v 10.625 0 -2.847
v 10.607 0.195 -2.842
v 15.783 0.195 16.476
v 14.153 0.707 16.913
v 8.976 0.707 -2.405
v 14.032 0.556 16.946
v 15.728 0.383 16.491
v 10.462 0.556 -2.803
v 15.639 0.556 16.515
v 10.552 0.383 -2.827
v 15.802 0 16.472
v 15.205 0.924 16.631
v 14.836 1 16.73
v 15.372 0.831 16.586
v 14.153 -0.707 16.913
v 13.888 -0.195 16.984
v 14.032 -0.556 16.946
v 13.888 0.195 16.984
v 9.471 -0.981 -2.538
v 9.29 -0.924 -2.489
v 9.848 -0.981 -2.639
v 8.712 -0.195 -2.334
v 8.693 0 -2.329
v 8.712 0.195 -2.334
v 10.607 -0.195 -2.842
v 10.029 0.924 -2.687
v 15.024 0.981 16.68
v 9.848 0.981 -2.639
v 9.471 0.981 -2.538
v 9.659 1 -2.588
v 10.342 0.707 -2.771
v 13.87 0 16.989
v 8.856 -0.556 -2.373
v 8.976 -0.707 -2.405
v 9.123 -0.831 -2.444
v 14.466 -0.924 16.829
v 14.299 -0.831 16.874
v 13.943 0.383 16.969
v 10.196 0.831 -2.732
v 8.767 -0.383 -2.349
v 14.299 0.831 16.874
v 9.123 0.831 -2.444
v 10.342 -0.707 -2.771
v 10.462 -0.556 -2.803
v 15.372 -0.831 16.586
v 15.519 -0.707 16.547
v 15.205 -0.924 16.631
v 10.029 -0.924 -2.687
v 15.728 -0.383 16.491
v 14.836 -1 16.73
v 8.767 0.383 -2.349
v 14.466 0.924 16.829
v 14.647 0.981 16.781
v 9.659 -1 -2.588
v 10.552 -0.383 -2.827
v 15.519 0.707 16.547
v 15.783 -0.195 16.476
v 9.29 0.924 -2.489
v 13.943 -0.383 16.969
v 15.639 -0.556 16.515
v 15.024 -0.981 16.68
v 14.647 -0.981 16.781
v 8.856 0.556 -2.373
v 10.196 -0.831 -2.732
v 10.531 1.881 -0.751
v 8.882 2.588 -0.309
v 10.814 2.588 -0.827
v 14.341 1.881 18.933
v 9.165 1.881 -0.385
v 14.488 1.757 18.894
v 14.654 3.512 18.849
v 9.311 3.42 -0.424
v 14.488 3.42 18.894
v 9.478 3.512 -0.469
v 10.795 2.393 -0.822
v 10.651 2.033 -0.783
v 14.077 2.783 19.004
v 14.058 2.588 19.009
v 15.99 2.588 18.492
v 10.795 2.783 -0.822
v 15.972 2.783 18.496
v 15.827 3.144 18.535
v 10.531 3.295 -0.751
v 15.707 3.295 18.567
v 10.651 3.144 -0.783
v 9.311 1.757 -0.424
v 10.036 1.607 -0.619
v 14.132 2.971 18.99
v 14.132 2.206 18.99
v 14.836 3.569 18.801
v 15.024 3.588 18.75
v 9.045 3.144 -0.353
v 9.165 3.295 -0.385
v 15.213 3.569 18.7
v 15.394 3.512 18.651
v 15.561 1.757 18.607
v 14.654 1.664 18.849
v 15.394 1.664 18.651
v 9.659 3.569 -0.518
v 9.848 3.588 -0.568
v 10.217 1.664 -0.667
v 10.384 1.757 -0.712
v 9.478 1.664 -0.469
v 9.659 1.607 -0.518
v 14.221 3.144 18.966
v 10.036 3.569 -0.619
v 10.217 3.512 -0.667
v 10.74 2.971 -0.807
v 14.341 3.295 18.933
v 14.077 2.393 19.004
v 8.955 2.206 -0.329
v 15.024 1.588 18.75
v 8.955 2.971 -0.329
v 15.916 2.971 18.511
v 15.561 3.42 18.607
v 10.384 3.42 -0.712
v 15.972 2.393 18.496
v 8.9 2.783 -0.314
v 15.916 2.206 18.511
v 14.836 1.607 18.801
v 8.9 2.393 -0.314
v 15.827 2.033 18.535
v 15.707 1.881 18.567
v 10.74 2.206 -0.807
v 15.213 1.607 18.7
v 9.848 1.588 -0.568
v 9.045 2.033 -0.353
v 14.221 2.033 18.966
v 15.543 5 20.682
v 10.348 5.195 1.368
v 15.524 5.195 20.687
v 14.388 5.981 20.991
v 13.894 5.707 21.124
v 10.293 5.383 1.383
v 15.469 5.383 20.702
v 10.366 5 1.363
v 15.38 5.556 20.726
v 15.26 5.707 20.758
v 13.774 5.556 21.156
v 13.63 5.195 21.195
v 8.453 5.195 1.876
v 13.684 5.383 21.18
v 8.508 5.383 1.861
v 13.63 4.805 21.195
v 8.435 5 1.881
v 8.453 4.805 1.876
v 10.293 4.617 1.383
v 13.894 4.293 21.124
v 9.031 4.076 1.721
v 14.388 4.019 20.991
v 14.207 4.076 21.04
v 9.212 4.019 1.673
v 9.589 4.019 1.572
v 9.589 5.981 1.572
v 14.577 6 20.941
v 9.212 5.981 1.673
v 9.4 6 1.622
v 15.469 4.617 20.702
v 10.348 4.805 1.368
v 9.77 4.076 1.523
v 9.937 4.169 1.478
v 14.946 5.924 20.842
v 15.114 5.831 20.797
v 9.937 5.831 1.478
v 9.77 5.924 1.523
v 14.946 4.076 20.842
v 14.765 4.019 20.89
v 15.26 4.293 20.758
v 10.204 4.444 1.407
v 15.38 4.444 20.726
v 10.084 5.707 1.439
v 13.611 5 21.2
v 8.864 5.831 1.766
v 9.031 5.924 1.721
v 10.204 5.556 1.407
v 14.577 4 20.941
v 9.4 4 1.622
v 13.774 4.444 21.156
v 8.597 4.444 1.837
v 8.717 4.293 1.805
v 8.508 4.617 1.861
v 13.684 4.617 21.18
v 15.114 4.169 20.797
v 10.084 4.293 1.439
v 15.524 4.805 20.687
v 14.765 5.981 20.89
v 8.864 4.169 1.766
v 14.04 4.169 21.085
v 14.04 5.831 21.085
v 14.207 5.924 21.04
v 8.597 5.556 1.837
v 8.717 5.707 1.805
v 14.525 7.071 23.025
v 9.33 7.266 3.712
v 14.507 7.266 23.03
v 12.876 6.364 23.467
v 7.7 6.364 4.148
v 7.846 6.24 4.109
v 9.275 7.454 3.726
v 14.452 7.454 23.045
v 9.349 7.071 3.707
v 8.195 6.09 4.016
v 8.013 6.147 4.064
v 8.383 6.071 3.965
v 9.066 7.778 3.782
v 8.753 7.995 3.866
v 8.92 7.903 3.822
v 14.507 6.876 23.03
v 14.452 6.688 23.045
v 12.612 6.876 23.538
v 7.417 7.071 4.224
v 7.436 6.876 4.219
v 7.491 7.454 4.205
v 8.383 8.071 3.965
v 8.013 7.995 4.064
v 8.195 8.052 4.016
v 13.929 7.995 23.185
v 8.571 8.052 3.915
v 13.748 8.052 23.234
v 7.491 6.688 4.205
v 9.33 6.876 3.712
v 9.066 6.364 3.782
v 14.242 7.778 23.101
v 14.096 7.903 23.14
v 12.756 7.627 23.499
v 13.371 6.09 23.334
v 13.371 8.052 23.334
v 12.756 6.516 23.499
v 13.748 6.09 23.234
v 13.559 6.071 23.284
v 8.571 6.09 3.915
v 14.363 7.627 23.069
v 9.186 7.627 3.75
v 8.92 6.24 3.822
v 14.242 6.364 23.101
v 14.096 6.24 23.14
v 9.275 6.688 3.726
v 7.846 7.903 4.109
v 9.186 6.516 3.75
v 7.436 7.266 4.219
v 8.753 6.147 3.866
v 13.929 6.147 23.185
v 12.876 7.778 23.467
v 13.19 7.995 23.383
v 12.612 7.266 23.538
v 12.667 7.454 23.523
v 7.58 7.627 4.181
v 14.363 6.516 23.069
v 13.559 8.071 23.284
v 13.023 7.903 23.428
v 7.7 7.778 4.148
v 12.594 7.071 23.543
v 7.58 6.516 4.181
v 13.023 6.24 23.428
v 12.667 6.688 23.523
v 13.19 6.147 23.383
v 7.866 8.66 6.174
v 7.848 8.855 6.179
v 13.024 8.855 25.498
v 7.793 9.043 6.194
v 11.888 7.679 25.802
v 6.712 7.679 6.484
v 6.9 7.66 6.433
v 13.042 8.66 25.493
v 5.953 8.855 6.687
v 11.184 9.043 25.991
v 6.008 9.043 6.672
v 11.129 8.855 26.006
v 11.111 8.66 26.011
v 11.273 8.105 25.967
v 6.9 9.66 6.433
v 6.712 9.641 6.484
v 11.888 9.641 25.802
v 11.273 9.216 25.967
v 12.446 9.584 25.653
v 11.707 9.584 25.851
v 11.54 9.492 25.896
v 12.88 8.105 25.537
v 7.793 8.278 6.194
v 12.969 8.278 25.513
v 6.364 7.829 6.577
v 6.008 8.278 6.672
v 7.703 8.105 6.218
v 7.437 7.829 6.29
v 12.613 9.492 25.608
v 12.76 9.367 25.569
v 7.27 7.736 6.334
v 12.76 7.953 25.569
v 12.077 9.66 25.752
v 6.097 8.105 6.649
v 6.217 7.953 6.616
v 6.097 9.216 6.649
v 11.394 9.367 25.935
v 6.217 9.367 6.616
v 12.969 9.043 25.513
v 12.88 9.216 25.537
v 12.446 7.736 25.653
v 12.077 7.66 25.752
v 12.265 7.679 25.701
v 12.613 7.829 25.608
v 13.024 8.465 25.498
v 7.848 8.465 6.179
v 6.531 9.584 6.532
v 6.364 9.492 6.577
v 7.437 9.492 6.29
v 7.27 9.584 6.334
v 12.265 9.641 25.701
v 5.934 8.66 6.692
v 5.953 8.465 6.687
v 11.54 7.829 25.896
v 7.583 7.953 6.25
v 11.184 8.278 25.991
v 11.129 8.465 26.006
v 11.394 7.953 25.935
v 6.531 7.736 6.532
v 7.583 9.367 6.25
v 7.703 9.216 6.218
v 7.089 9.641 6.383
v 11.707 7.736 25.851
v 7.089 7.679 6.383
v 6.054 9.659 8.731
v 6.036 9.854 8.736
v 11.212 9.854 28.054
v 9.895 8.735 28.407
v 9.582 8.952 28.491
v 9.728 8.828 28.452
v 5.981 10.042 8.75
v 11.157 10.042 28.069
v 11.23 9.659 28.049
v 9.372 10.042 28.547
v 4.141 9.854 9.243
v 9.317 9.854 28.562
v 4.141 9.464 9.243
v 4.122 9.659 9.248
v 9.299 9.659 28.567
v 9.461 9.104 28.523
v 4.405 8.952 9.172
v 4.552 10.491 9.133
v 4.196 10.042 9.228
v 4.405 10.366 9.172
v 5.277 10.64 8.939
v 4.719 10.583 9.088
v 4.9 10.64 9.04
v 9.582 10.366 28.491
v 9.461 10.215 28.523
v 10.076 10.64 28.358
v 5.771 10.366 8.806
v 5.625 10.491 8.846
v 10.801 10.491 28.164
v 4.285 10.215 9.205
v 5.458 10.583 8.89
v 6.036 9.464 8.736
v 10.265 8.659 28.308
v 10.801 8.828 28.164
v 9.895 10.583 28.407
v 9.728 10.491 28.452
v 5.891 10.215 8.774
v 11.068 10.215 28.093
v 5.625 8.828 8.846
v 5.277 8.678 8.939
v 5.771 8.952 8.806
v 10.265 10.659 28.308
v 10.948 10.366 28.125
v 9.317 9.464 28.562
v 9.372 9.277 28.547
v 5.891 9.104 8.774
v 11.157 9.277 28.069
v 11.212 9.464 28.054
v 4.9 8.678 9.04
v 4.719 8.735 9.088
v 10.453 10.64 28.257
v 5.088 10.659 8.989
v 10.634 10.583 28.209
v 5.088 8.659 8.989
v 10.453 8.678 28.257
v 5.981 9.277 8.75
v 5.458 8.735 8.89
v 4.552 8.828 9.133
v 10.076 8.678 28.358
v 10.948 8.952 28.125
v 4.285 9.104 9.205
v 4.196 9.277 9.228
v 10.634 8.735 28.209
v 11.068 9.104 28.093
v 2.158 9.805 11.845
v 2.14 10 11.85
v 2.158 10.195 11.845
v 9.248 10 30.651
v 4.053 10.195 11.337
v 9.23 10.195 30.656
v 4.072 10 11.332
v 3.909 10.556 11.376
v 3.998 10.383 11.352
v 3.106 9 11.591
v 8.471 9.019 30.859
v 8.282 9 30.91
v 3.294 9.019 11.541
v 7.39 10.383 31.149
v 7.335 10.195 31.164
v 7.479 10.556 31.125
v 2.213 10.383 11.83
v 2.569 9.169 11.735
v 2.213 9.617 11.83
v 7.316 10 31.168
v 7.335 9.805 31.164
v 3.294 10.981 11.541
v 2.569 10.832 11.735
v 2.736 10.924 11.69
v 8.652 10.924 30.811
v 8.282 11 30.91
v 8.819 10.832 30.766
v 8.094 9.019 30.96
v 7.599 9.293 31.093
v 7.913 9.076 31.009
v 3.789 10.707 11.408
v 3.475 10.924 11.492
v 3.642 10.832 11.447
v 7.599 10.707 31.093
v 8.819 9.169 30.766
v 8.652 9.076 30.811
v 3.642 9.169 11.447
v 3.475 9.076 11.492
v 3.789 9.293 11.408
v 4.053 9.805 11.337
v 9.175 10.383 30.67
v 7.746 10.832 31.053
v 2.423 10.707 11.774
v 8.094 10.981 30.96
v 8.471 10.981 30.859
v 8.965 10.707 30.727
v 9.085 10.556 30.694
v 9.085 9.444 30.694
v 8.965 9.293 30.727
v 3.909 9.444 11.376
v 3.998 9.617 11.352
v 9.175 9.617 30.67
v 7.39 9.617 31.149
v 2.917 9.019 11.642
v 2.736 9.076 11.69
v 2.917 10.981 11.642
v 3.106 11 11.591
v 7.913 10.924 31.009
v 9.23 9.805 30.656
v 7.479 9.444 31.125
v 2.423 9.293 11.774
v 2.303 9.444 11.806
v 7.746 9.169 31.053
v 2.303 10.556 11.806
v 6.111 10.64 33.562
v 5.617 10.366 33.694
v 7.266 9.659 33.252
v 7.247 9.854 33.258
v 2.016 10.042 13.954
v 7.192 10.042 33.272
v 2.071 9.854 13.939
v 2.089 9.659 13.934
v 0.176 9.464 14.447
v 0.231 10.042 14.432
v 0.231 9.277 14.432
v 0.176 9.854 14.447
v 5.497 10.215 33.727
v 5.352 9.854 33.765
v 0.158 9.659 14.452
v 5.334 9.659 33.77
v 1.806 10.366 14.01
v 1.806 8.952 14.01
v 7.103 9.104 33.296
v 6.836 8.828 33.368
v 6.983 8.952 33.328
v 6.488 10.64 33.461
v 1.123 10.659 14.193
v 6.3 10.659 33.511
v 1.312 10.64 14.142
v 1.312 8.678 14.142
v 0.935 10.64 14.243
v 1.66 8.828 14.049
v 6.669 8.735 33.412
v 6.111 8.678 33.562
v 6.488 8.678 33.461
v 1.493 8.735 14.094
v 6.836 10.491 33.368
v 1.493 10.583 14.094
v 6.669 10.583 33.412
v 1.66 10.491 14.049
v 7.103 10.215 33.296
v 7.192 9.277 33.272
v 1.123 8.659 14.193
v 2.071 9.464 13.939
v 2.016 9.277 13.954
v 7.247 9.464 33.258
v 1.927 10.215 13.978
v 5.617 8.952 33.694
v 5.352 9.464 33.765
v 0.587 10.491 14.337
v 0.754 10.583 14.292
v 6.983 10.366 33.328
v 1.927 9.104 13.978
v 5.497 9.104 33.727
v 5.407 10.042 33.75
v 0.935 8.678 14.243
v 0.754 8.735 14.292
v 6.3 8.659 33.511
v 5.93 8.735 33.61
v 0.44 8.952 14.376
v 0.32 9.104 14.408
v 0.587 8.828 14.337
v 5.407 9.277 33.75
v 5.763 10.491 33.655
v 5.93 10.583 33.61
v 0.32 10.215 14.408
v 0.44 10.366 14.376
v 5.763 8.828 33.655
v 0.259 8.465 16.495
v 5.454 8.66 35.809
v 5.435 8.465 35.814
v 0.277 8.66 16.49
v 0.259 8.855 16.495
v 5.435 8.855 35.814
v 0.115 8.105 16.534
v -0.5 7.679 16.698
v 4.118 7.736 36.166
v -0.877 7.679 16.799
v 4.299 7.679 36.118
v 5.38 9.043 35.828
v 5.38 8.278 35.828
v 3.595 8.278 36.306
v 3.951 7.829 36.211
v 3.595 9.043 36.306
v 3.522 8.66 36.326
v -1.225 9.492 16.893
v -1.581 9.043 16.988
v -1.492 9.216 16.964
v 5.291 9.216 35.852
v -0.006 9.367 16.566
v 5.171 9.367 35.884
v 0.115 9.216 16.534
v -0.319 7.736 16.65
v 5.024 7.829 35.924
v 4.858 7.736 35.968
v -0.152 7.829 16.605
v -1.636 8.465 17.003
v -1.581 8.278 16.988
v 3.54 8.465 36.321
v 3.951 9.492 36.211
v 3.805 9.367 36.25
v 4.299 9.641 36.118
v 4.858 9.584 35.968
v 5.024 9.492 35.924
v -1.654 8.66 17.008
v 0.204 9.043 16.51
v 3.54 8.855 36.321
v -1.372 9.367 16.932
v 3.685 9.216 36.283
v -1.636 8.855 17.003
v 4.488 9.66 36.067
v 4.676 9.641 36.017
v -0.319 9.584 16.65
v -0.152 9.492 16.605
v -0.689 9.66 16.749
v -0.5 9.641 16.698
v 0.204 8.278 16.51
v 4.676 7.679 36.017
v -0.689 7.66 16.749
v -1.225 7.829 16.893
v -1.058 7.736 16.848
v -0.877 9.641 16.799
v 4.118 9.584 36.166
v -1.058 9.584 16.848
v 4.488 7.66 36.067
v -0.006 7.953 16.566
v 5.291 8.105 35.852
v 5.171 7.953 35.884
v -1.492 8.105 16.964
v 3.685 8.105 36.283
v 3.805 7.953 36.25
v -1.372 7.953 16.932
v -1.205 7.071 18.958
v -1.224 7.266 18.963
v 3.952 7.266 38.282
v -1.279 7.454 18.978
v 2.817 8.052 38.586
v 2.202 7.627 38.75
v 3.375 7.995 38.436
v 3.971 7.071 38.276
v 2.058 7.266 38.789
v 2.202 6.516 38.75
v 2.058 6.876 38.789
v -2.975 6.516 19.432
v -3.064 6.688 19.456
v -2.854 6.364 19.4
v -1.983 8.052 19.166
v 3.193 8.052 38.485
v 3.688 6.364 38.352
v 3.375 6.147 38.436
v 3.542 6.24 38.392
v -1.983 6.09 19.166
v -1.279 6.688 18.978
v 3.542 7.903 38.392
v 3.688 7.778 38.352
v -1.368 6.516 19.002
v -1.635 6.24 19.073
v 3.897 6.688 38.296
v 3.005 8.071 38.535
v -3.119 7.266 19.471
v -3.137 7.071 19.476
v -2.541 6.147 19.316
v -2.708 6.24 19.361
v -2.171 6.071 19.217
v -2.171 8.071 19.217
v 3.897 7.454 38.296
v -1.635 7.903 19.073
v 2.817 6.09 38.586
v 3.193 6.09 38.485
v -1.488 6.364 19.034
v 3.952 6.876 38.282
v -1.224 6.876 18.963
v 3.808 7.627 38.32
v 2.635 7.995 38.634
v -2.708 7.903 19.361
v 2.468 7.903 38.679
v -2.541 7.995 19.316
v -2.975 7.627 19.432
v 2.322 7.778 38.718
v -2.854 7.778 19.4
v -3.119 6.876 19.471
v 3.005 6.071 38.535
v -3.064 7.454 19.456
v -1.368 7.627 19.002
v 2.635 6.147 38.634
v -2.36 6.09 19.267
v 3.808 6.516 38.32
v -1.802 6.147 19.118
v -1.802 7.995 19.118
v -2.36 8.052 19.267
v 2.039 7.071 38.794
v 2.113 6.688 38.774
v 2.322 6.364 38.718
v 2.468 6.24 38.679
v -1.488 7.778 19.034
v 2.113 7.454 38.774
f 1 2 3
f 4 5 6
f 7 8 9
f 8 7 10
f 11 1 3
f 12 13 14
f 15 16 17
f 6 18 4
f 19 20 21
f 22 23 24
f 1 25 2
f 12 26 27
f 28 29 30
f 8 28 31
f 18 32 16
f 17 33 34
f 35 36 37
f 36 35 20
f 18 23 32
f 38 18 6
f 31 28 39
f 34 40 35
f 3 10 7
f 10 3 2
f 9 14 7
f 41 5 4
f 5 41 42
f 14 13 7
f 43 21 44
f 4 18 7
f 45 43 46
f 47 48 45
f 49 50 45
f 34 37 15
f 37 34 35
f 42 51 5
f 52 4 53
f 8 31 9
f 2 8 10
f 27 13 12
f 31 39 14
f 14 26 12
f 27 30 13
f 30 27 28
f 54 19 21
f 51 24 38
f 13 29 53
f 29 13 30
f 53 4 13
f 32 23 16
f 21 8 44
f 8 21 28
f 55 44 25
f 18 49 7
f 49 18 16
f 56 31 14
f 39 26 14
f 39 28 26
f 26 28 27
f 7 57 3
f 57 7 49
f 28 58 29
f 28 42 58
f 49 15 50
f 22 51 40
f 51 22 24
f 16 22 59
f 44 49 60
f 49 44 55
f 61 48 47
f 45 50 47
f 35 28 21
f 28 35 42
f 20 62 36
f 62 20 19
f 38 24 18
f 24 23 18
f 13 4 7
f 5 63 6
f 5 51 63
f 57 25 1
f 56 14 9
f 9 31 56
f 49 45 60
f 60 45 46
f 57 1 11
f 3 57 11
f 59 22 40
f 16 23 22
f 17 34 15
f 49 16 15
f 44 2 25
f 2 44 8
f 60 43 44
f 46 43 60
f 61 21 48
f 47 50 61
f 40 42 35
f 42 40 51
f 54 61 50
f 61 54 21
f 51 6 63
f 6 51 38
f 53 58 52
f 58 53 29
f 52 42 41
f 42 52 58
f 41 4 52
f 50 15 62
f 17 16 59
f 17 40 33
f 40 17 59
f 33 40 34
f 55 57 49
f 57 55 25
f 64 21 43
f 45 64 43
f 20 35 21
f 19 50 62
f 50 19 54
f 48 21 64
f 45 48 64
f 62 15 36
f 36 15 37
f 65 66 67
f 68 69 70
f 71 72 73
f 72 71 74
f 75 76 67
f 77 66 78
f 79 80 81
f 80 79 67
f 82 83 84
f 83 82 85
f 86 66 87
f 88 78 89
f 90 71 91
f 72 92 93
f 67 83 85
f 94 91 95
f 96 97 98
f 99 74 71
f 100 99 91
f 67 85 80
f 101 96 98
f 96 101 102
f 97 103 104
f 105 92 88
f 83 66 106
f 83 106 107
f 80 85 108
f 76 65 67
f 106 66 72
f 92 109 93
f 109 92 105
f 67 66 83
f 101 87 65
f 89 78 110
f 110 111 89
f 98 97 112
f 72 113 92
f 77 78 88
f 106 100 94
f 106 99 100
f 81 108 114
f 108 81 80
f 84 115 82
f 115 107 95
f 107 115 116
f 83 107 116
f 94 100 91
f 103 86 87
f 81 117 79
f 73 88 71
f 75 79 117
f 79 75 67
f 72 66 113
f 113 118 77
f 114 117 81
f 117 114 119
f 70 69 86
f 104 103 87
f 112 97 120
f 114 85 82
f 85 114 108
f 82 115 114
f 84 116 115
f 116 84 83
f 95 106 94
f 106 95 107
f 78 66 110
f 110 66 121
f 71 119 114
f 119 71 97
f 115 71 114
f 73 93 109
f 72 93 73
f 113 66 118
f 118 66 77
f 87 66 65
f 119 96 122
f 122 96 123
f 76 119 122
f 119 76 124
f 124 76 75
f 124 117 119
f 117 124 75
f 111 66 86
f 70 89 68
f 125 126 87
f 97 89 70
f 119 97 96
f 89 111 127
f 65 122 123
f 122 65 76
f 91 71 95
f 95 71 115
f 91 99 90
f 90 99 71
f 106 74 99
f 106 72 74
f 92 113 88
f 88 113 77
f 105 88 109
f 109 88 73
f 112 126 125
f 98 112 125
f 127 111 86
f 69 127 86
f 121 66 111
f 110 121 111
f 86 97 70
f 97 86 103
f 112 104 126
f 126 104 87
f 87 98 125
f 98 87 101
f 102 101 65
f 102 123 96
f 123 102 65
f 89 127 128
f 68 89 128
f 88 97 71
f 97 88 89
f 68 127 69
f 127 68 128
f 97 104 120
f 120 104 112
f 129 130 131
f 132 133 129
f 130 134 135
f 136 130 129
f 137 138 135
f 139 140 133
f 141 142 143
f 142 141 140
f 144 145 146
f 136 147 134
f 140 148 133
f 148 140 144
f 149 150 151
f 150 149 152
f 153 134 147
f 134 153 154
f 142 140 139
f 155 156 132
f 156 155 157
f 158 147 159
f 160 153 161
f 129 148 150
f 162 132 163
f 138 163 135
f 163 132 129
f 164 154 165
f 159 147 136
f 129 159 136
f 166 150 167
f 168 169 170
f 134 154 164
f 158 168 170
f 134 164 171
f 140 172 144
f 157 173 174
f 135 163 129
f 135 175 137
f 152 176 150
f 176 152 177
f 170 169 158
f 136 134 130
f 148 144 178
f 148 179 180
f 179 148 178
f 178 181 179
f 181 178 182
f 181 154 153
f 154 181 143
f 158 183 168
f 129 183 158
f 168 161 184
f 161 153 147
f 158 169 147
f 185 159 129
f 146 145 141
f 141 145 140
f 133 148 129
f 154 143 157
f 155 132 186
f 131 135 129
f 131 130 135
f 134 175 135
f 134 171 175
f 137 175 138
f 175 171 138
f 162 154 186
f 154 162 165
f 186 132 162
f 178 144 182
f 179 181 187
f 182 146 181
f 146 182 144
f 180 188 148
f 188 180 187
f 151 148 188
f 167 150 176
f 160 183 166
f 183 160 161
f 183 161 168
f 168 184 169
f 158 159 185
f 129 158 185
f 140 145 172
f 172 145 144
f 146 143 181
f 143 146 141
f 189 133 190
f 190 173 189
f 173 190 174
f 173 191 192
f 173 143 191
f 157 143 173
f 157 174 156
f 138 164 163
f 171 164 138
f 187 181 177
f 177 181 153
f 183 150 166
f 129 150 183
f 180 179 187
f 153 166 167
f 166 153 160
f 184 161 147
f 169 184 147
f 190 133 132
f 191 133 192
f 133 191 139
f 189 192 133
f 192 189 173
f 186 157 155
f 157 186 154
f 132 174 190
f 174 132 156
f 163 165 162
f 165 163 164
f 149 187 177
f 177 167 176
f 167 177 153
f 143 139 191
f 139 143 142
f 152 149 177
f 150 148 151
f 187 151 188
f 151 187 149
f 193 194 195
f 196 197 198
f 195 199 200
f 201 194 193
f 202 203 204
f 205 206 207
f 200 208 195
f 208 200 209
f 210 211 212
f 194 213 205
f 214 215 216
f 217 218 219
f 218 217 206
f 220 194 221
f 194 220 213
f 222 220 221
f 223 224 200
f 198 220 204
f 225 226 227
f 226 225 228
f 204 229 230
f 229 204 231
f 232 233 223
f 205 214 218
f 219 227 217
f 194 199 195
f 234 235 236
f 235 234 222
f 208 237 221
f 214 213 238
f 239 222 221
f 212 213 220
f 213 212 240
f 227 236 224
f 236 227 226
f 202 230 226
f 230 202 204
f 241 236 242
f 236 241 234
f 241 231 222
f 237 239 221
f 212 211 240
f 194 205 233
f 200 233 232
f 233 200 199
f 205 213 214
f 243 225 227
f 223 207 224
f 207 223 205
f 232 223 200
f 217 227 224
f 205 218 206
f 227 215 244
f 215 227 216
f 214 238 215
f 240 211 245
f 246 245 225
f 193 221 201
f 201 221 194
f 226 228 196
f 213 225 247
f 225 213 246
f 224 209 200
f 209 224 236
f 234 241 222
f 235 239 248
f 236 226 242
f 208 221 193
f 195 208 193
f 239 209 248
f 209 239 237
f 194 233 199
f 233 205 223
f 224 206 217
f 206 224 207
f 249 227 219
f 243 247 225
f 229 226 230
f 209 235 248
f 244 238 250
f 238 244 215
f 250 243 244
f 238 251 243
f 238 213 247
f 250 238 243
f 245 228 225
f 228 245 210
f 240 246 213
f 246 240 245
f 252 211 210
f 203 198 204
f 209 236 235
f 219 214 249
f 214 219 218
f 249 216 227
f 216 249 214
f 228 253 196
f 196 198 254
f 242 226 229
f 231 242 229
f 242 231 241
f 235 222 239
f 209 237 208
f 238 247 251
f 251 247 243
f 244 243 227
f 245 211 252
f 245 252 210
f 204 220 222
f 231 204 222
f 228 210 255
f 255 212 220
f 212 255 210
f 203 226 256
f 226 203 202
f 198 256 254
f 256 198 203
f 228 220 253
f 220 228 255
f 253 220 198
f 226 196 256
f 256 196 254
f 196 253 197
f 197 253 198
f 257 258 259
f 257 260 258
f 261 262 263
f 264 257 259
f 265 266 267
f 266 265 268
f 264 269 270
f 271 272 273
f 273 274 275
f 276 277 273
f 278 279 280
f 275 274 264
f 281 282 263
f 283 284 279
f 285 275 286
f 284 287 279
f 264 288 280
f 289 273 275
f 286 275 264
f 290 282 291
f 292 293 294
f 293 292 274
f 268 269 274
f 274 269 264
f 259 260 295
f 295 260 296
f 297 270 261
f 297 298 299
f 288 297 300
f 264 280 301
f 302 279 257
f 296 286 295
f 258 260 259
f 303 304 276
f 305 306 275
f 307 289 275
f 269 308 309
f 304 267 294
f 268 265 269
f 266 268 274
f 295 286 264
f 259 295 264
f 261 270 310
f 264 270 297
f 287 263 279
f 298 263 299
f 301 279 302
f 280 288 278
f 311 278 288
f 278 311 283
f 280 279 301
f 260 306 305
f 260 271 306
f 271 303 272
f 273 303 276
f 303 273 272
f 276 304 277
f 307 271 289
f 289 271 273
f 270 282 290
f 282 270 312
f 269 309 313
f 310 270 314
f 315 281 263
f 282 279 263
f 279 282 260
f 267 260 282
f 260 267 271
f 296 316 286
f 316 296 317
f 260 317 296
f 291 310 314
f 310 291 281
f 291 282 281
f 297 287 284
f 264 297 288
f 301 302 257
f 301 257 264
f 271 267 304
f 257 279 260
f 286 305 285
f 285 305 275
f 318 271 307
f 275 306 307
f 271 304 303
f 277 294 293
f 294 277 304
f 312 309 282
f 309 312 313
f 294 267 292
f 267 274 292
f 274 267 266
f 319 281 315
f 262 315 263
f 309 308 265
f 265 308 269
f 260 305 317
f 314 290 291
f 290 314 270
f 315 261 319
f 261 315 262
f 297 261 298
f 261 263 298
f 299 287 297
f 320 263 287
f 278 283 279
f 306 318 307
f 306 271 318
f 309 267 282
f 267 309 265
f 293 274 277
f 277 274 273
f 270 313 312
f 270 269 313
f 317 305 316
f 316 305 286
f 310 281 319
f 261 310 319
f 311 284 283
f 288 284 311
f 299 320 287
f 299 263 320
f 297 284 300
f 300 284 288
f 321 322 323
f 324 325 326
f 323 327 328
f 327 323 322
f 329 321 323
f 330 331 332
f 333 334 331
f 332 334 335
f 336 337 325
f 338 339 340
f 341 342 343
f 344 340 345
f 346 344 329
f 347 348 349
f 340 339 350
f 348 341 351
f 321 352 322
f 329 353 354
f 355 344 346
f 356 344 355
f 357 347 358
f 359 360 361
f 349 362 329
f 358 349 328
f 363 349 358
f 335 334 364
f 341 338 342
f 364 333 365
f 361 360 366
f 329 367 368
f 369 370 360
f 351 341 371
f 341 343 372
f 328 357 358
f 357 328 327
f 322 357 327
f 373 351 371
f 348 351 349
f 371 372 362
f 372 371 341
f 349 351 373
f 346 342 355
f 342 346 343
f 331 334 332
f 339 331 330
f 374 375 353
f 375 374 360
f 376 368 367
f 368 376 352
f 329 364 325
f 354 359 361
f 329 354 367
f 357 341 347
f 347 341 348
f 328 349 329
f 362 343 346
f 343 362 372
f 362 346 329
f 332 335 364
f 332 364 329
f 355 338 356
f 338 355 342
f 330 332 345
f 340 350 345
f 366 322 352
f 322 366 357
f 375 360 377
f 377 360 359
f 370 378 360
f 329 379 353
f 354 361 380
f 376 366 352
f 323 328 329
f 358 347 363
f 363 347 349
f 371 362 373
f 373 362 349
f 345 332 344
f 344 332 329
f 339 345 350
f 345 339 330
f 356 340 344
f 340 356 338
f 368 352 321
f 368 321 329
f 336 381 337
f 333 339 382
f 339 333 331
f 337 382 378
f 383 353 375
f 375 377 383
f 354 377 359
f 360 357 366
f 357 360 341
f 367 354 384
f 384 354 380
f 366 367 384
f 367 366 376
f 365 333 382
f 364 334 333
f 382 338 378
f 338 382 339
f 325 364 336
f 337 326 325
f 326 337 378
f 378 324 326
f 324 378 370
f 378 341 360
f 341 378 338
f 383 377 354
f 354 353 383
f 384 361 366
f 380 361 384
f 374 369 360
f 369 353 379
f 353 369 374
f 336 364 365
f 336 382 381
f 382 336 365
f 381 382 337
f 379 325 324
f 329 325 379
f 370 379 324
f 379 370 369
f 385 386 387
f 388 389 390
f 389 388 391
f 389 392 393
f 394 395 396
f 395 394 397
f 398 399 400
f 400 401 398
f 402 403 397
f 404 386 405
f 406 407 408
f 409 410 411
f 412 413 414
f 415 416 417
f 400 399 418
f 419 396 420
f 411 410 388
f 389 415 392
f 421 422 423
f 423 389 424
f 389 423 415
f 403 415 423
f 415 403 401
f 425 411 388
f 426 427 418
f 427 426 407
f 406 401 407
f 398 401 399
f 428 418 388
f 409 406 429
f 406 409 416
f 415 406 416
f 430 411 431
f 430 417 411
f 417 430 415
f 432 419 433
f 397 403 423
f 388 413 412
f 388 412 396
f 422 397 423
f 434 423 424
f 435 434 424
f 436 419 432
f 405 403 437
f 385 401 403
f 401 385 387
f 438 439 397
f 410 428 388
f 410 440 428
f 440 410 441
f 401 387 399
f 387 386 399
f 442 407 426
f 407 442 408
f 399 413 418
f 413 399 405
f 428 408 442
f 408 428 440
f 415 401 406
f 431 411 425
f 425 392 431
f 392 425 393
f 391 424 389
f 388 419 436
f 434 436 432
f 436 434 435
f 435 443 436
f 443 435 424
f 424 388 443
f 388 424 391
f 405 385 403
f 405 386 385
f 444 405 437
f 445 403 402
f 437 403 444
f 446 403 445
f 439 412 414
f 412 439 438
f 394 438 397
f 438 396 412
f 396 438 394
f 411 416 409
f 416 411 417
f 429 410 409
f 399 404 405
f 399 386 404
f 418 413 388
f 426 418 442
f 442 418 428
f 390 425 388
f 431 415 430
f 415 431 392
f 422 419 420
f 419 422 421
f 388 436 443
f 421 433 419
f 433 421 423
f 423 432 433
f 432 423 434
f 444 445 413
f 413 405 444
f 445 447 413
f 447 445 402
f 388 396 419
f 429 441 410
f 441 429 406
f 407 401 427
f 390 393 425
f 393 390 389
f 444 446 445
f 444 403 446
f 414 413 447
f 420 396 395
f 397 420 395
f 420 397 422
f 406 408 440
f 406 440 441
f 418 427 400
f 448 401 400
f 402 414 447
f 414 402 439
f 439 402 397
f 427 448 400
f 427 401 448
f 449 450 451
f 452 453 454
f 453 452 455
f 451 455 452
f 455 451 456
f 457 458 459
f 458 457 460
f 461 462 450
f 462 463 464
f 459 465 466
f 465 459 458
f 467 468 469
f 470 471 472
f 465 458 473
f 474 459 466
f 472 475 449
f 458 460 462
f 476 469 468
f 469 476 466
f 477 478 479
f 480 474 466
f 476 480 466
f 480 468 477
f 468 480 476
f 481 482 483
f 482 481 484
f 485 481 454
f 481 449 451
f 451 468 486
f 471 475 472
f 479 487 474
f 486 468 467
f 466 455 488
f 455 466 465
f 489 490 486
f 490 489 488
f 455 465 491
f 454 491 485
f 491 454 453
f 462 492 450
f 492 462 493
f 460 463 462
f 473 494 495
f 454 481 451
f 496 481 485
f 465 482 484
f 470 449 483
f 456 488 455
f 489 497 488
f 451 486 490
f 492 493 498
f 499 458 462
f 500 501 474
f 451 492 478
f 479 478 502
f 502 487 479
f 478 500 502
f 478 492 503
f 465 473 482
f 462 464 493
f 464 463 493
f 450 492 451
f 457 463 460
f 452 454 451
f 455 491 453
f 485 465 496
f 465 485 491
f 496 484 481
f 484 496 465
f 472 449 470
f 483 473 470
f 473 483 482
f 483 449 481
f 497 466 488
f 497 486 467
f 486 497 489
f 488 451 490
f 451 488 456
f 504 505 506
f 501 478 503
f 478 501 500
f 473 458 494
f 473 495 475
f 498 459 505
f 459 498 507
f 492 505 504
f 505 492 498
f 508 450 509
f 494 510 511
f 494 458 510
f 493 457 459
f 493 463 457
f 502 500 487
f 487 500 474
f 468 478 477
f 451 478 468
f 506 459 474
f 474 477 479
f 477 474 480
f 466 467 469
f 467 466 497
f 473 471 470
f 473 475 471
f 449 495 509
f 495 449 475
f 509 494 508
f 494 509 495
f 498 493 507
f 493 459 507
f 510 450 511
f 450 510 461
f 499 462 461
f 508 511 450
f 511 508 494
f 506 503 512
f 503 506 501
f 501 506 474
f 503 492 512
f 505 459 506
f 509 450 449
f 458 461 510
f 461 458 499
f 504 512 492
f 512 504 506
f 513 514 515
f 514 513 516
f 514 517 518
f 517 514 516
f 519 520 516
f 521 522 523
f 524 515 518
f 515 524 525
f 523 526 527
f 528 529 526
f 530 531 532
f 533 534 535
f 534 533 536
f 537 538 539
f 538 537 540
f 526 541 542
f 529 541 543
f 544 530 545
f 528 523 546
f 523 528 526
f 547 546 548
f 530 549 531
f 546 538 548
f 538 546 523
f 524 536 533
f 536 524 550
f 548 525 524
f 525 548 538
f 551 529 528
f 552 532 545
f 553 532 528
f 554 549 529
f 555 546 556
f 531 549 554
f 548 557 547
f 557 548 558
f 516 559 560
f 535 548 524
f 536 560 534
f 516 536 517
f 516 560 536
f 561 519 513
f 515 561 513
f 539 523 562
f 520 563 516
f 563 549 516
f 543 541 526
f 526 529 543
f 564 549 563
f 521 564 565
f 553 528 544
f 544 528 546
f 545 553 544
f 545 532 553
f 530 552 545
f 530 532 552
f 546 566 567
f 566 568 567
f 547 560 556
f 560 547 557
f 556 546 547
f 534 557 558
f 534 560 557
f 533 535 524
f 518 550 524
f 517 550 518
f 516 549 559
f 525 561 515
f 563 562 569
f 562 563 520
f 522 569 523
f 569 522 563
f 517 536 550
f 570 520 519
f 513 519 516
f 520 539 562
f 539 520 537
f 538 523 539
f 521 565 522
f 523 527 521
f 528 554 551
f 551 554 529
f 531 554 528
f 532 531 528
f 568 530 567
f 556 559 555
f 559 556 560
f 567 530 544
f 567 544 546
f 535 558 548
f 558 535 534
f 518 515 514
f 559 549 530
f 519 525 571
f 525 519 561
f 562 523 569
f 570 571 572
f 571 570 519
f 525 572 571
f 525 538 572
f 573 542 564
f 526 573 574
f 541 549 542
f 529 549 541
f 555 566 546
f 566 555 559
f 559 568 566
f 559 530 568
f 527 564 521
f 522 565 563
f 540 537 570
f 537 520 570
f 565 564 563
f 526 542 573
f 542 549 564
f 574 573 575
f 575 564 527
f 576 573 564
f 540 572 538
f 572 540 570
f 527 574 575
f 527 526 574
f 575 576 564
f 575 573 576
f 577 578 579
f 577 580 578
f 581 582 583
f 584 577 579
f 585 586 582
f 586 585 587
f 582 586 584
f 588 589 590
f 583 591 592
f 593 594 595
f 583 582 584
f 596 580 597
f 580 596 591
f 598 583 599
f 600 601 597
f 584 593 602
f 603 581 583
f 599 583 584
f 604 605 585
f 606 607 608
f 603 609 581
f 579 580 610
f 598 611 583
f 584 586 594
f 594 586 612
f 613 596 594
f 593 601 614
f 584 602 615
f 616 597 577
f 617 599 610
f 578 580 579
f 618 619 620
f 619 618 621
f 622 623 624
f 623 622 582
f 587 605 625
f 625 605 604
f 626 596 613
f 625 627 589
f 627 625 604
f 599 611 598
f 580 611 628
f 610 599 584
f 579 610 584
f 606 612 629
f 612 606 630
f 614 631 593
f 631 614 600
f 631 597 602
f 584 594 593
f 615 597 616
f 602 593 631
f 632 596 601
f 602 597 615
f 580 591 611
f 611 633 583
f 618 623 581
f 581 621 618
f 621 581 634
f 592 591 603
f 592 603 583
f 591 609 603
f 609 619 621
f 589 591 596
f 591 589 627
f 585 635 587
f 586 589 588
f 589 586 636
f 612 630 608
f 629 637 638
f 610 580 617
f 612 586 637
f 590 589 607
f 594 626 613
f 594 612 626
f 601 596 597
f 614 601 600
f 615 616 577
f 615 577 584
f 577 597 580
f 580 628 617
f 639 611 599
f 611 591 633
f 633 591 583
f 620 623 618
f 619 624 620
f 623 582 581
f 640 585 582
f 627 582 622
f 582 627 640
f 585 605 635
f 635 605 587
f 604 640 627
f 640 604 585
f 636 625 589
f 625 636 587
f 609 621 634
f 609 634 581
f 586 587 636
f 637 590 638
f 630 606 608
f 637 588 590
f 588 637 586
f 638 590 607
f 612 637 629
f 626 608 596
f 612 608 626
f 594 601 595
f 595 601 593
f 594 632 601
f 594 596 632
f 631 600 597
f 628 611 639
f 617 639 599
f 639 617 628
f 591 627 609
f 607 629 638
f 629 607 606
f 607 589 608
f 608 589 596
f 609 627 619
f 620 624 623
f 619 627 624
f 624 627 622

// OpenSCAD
// Coral model in OpenSCAD

// Parameters
radius = 10;
height = 20;
branch_angle = 15;
branch_length = 20;
branch_radius = 1;
num_branches = 10;

module coral(radius, height, branch_angle, branch_length, branch_radius, num_branches) {
  for (i = [0:num_branches-1]) {
    rotate([0, branch_angle, 0]) {
      translate([radius * cos(i * branch_angle), radius * sin(i * branch_angle), height * i / num_branches]) {
        cylinder(h = branch_length, r = branch_radius, $fn=32);
      }
    }
  }
}

coral(radius, height, branch_angle, branch_length, branch_radius, num_branches);
